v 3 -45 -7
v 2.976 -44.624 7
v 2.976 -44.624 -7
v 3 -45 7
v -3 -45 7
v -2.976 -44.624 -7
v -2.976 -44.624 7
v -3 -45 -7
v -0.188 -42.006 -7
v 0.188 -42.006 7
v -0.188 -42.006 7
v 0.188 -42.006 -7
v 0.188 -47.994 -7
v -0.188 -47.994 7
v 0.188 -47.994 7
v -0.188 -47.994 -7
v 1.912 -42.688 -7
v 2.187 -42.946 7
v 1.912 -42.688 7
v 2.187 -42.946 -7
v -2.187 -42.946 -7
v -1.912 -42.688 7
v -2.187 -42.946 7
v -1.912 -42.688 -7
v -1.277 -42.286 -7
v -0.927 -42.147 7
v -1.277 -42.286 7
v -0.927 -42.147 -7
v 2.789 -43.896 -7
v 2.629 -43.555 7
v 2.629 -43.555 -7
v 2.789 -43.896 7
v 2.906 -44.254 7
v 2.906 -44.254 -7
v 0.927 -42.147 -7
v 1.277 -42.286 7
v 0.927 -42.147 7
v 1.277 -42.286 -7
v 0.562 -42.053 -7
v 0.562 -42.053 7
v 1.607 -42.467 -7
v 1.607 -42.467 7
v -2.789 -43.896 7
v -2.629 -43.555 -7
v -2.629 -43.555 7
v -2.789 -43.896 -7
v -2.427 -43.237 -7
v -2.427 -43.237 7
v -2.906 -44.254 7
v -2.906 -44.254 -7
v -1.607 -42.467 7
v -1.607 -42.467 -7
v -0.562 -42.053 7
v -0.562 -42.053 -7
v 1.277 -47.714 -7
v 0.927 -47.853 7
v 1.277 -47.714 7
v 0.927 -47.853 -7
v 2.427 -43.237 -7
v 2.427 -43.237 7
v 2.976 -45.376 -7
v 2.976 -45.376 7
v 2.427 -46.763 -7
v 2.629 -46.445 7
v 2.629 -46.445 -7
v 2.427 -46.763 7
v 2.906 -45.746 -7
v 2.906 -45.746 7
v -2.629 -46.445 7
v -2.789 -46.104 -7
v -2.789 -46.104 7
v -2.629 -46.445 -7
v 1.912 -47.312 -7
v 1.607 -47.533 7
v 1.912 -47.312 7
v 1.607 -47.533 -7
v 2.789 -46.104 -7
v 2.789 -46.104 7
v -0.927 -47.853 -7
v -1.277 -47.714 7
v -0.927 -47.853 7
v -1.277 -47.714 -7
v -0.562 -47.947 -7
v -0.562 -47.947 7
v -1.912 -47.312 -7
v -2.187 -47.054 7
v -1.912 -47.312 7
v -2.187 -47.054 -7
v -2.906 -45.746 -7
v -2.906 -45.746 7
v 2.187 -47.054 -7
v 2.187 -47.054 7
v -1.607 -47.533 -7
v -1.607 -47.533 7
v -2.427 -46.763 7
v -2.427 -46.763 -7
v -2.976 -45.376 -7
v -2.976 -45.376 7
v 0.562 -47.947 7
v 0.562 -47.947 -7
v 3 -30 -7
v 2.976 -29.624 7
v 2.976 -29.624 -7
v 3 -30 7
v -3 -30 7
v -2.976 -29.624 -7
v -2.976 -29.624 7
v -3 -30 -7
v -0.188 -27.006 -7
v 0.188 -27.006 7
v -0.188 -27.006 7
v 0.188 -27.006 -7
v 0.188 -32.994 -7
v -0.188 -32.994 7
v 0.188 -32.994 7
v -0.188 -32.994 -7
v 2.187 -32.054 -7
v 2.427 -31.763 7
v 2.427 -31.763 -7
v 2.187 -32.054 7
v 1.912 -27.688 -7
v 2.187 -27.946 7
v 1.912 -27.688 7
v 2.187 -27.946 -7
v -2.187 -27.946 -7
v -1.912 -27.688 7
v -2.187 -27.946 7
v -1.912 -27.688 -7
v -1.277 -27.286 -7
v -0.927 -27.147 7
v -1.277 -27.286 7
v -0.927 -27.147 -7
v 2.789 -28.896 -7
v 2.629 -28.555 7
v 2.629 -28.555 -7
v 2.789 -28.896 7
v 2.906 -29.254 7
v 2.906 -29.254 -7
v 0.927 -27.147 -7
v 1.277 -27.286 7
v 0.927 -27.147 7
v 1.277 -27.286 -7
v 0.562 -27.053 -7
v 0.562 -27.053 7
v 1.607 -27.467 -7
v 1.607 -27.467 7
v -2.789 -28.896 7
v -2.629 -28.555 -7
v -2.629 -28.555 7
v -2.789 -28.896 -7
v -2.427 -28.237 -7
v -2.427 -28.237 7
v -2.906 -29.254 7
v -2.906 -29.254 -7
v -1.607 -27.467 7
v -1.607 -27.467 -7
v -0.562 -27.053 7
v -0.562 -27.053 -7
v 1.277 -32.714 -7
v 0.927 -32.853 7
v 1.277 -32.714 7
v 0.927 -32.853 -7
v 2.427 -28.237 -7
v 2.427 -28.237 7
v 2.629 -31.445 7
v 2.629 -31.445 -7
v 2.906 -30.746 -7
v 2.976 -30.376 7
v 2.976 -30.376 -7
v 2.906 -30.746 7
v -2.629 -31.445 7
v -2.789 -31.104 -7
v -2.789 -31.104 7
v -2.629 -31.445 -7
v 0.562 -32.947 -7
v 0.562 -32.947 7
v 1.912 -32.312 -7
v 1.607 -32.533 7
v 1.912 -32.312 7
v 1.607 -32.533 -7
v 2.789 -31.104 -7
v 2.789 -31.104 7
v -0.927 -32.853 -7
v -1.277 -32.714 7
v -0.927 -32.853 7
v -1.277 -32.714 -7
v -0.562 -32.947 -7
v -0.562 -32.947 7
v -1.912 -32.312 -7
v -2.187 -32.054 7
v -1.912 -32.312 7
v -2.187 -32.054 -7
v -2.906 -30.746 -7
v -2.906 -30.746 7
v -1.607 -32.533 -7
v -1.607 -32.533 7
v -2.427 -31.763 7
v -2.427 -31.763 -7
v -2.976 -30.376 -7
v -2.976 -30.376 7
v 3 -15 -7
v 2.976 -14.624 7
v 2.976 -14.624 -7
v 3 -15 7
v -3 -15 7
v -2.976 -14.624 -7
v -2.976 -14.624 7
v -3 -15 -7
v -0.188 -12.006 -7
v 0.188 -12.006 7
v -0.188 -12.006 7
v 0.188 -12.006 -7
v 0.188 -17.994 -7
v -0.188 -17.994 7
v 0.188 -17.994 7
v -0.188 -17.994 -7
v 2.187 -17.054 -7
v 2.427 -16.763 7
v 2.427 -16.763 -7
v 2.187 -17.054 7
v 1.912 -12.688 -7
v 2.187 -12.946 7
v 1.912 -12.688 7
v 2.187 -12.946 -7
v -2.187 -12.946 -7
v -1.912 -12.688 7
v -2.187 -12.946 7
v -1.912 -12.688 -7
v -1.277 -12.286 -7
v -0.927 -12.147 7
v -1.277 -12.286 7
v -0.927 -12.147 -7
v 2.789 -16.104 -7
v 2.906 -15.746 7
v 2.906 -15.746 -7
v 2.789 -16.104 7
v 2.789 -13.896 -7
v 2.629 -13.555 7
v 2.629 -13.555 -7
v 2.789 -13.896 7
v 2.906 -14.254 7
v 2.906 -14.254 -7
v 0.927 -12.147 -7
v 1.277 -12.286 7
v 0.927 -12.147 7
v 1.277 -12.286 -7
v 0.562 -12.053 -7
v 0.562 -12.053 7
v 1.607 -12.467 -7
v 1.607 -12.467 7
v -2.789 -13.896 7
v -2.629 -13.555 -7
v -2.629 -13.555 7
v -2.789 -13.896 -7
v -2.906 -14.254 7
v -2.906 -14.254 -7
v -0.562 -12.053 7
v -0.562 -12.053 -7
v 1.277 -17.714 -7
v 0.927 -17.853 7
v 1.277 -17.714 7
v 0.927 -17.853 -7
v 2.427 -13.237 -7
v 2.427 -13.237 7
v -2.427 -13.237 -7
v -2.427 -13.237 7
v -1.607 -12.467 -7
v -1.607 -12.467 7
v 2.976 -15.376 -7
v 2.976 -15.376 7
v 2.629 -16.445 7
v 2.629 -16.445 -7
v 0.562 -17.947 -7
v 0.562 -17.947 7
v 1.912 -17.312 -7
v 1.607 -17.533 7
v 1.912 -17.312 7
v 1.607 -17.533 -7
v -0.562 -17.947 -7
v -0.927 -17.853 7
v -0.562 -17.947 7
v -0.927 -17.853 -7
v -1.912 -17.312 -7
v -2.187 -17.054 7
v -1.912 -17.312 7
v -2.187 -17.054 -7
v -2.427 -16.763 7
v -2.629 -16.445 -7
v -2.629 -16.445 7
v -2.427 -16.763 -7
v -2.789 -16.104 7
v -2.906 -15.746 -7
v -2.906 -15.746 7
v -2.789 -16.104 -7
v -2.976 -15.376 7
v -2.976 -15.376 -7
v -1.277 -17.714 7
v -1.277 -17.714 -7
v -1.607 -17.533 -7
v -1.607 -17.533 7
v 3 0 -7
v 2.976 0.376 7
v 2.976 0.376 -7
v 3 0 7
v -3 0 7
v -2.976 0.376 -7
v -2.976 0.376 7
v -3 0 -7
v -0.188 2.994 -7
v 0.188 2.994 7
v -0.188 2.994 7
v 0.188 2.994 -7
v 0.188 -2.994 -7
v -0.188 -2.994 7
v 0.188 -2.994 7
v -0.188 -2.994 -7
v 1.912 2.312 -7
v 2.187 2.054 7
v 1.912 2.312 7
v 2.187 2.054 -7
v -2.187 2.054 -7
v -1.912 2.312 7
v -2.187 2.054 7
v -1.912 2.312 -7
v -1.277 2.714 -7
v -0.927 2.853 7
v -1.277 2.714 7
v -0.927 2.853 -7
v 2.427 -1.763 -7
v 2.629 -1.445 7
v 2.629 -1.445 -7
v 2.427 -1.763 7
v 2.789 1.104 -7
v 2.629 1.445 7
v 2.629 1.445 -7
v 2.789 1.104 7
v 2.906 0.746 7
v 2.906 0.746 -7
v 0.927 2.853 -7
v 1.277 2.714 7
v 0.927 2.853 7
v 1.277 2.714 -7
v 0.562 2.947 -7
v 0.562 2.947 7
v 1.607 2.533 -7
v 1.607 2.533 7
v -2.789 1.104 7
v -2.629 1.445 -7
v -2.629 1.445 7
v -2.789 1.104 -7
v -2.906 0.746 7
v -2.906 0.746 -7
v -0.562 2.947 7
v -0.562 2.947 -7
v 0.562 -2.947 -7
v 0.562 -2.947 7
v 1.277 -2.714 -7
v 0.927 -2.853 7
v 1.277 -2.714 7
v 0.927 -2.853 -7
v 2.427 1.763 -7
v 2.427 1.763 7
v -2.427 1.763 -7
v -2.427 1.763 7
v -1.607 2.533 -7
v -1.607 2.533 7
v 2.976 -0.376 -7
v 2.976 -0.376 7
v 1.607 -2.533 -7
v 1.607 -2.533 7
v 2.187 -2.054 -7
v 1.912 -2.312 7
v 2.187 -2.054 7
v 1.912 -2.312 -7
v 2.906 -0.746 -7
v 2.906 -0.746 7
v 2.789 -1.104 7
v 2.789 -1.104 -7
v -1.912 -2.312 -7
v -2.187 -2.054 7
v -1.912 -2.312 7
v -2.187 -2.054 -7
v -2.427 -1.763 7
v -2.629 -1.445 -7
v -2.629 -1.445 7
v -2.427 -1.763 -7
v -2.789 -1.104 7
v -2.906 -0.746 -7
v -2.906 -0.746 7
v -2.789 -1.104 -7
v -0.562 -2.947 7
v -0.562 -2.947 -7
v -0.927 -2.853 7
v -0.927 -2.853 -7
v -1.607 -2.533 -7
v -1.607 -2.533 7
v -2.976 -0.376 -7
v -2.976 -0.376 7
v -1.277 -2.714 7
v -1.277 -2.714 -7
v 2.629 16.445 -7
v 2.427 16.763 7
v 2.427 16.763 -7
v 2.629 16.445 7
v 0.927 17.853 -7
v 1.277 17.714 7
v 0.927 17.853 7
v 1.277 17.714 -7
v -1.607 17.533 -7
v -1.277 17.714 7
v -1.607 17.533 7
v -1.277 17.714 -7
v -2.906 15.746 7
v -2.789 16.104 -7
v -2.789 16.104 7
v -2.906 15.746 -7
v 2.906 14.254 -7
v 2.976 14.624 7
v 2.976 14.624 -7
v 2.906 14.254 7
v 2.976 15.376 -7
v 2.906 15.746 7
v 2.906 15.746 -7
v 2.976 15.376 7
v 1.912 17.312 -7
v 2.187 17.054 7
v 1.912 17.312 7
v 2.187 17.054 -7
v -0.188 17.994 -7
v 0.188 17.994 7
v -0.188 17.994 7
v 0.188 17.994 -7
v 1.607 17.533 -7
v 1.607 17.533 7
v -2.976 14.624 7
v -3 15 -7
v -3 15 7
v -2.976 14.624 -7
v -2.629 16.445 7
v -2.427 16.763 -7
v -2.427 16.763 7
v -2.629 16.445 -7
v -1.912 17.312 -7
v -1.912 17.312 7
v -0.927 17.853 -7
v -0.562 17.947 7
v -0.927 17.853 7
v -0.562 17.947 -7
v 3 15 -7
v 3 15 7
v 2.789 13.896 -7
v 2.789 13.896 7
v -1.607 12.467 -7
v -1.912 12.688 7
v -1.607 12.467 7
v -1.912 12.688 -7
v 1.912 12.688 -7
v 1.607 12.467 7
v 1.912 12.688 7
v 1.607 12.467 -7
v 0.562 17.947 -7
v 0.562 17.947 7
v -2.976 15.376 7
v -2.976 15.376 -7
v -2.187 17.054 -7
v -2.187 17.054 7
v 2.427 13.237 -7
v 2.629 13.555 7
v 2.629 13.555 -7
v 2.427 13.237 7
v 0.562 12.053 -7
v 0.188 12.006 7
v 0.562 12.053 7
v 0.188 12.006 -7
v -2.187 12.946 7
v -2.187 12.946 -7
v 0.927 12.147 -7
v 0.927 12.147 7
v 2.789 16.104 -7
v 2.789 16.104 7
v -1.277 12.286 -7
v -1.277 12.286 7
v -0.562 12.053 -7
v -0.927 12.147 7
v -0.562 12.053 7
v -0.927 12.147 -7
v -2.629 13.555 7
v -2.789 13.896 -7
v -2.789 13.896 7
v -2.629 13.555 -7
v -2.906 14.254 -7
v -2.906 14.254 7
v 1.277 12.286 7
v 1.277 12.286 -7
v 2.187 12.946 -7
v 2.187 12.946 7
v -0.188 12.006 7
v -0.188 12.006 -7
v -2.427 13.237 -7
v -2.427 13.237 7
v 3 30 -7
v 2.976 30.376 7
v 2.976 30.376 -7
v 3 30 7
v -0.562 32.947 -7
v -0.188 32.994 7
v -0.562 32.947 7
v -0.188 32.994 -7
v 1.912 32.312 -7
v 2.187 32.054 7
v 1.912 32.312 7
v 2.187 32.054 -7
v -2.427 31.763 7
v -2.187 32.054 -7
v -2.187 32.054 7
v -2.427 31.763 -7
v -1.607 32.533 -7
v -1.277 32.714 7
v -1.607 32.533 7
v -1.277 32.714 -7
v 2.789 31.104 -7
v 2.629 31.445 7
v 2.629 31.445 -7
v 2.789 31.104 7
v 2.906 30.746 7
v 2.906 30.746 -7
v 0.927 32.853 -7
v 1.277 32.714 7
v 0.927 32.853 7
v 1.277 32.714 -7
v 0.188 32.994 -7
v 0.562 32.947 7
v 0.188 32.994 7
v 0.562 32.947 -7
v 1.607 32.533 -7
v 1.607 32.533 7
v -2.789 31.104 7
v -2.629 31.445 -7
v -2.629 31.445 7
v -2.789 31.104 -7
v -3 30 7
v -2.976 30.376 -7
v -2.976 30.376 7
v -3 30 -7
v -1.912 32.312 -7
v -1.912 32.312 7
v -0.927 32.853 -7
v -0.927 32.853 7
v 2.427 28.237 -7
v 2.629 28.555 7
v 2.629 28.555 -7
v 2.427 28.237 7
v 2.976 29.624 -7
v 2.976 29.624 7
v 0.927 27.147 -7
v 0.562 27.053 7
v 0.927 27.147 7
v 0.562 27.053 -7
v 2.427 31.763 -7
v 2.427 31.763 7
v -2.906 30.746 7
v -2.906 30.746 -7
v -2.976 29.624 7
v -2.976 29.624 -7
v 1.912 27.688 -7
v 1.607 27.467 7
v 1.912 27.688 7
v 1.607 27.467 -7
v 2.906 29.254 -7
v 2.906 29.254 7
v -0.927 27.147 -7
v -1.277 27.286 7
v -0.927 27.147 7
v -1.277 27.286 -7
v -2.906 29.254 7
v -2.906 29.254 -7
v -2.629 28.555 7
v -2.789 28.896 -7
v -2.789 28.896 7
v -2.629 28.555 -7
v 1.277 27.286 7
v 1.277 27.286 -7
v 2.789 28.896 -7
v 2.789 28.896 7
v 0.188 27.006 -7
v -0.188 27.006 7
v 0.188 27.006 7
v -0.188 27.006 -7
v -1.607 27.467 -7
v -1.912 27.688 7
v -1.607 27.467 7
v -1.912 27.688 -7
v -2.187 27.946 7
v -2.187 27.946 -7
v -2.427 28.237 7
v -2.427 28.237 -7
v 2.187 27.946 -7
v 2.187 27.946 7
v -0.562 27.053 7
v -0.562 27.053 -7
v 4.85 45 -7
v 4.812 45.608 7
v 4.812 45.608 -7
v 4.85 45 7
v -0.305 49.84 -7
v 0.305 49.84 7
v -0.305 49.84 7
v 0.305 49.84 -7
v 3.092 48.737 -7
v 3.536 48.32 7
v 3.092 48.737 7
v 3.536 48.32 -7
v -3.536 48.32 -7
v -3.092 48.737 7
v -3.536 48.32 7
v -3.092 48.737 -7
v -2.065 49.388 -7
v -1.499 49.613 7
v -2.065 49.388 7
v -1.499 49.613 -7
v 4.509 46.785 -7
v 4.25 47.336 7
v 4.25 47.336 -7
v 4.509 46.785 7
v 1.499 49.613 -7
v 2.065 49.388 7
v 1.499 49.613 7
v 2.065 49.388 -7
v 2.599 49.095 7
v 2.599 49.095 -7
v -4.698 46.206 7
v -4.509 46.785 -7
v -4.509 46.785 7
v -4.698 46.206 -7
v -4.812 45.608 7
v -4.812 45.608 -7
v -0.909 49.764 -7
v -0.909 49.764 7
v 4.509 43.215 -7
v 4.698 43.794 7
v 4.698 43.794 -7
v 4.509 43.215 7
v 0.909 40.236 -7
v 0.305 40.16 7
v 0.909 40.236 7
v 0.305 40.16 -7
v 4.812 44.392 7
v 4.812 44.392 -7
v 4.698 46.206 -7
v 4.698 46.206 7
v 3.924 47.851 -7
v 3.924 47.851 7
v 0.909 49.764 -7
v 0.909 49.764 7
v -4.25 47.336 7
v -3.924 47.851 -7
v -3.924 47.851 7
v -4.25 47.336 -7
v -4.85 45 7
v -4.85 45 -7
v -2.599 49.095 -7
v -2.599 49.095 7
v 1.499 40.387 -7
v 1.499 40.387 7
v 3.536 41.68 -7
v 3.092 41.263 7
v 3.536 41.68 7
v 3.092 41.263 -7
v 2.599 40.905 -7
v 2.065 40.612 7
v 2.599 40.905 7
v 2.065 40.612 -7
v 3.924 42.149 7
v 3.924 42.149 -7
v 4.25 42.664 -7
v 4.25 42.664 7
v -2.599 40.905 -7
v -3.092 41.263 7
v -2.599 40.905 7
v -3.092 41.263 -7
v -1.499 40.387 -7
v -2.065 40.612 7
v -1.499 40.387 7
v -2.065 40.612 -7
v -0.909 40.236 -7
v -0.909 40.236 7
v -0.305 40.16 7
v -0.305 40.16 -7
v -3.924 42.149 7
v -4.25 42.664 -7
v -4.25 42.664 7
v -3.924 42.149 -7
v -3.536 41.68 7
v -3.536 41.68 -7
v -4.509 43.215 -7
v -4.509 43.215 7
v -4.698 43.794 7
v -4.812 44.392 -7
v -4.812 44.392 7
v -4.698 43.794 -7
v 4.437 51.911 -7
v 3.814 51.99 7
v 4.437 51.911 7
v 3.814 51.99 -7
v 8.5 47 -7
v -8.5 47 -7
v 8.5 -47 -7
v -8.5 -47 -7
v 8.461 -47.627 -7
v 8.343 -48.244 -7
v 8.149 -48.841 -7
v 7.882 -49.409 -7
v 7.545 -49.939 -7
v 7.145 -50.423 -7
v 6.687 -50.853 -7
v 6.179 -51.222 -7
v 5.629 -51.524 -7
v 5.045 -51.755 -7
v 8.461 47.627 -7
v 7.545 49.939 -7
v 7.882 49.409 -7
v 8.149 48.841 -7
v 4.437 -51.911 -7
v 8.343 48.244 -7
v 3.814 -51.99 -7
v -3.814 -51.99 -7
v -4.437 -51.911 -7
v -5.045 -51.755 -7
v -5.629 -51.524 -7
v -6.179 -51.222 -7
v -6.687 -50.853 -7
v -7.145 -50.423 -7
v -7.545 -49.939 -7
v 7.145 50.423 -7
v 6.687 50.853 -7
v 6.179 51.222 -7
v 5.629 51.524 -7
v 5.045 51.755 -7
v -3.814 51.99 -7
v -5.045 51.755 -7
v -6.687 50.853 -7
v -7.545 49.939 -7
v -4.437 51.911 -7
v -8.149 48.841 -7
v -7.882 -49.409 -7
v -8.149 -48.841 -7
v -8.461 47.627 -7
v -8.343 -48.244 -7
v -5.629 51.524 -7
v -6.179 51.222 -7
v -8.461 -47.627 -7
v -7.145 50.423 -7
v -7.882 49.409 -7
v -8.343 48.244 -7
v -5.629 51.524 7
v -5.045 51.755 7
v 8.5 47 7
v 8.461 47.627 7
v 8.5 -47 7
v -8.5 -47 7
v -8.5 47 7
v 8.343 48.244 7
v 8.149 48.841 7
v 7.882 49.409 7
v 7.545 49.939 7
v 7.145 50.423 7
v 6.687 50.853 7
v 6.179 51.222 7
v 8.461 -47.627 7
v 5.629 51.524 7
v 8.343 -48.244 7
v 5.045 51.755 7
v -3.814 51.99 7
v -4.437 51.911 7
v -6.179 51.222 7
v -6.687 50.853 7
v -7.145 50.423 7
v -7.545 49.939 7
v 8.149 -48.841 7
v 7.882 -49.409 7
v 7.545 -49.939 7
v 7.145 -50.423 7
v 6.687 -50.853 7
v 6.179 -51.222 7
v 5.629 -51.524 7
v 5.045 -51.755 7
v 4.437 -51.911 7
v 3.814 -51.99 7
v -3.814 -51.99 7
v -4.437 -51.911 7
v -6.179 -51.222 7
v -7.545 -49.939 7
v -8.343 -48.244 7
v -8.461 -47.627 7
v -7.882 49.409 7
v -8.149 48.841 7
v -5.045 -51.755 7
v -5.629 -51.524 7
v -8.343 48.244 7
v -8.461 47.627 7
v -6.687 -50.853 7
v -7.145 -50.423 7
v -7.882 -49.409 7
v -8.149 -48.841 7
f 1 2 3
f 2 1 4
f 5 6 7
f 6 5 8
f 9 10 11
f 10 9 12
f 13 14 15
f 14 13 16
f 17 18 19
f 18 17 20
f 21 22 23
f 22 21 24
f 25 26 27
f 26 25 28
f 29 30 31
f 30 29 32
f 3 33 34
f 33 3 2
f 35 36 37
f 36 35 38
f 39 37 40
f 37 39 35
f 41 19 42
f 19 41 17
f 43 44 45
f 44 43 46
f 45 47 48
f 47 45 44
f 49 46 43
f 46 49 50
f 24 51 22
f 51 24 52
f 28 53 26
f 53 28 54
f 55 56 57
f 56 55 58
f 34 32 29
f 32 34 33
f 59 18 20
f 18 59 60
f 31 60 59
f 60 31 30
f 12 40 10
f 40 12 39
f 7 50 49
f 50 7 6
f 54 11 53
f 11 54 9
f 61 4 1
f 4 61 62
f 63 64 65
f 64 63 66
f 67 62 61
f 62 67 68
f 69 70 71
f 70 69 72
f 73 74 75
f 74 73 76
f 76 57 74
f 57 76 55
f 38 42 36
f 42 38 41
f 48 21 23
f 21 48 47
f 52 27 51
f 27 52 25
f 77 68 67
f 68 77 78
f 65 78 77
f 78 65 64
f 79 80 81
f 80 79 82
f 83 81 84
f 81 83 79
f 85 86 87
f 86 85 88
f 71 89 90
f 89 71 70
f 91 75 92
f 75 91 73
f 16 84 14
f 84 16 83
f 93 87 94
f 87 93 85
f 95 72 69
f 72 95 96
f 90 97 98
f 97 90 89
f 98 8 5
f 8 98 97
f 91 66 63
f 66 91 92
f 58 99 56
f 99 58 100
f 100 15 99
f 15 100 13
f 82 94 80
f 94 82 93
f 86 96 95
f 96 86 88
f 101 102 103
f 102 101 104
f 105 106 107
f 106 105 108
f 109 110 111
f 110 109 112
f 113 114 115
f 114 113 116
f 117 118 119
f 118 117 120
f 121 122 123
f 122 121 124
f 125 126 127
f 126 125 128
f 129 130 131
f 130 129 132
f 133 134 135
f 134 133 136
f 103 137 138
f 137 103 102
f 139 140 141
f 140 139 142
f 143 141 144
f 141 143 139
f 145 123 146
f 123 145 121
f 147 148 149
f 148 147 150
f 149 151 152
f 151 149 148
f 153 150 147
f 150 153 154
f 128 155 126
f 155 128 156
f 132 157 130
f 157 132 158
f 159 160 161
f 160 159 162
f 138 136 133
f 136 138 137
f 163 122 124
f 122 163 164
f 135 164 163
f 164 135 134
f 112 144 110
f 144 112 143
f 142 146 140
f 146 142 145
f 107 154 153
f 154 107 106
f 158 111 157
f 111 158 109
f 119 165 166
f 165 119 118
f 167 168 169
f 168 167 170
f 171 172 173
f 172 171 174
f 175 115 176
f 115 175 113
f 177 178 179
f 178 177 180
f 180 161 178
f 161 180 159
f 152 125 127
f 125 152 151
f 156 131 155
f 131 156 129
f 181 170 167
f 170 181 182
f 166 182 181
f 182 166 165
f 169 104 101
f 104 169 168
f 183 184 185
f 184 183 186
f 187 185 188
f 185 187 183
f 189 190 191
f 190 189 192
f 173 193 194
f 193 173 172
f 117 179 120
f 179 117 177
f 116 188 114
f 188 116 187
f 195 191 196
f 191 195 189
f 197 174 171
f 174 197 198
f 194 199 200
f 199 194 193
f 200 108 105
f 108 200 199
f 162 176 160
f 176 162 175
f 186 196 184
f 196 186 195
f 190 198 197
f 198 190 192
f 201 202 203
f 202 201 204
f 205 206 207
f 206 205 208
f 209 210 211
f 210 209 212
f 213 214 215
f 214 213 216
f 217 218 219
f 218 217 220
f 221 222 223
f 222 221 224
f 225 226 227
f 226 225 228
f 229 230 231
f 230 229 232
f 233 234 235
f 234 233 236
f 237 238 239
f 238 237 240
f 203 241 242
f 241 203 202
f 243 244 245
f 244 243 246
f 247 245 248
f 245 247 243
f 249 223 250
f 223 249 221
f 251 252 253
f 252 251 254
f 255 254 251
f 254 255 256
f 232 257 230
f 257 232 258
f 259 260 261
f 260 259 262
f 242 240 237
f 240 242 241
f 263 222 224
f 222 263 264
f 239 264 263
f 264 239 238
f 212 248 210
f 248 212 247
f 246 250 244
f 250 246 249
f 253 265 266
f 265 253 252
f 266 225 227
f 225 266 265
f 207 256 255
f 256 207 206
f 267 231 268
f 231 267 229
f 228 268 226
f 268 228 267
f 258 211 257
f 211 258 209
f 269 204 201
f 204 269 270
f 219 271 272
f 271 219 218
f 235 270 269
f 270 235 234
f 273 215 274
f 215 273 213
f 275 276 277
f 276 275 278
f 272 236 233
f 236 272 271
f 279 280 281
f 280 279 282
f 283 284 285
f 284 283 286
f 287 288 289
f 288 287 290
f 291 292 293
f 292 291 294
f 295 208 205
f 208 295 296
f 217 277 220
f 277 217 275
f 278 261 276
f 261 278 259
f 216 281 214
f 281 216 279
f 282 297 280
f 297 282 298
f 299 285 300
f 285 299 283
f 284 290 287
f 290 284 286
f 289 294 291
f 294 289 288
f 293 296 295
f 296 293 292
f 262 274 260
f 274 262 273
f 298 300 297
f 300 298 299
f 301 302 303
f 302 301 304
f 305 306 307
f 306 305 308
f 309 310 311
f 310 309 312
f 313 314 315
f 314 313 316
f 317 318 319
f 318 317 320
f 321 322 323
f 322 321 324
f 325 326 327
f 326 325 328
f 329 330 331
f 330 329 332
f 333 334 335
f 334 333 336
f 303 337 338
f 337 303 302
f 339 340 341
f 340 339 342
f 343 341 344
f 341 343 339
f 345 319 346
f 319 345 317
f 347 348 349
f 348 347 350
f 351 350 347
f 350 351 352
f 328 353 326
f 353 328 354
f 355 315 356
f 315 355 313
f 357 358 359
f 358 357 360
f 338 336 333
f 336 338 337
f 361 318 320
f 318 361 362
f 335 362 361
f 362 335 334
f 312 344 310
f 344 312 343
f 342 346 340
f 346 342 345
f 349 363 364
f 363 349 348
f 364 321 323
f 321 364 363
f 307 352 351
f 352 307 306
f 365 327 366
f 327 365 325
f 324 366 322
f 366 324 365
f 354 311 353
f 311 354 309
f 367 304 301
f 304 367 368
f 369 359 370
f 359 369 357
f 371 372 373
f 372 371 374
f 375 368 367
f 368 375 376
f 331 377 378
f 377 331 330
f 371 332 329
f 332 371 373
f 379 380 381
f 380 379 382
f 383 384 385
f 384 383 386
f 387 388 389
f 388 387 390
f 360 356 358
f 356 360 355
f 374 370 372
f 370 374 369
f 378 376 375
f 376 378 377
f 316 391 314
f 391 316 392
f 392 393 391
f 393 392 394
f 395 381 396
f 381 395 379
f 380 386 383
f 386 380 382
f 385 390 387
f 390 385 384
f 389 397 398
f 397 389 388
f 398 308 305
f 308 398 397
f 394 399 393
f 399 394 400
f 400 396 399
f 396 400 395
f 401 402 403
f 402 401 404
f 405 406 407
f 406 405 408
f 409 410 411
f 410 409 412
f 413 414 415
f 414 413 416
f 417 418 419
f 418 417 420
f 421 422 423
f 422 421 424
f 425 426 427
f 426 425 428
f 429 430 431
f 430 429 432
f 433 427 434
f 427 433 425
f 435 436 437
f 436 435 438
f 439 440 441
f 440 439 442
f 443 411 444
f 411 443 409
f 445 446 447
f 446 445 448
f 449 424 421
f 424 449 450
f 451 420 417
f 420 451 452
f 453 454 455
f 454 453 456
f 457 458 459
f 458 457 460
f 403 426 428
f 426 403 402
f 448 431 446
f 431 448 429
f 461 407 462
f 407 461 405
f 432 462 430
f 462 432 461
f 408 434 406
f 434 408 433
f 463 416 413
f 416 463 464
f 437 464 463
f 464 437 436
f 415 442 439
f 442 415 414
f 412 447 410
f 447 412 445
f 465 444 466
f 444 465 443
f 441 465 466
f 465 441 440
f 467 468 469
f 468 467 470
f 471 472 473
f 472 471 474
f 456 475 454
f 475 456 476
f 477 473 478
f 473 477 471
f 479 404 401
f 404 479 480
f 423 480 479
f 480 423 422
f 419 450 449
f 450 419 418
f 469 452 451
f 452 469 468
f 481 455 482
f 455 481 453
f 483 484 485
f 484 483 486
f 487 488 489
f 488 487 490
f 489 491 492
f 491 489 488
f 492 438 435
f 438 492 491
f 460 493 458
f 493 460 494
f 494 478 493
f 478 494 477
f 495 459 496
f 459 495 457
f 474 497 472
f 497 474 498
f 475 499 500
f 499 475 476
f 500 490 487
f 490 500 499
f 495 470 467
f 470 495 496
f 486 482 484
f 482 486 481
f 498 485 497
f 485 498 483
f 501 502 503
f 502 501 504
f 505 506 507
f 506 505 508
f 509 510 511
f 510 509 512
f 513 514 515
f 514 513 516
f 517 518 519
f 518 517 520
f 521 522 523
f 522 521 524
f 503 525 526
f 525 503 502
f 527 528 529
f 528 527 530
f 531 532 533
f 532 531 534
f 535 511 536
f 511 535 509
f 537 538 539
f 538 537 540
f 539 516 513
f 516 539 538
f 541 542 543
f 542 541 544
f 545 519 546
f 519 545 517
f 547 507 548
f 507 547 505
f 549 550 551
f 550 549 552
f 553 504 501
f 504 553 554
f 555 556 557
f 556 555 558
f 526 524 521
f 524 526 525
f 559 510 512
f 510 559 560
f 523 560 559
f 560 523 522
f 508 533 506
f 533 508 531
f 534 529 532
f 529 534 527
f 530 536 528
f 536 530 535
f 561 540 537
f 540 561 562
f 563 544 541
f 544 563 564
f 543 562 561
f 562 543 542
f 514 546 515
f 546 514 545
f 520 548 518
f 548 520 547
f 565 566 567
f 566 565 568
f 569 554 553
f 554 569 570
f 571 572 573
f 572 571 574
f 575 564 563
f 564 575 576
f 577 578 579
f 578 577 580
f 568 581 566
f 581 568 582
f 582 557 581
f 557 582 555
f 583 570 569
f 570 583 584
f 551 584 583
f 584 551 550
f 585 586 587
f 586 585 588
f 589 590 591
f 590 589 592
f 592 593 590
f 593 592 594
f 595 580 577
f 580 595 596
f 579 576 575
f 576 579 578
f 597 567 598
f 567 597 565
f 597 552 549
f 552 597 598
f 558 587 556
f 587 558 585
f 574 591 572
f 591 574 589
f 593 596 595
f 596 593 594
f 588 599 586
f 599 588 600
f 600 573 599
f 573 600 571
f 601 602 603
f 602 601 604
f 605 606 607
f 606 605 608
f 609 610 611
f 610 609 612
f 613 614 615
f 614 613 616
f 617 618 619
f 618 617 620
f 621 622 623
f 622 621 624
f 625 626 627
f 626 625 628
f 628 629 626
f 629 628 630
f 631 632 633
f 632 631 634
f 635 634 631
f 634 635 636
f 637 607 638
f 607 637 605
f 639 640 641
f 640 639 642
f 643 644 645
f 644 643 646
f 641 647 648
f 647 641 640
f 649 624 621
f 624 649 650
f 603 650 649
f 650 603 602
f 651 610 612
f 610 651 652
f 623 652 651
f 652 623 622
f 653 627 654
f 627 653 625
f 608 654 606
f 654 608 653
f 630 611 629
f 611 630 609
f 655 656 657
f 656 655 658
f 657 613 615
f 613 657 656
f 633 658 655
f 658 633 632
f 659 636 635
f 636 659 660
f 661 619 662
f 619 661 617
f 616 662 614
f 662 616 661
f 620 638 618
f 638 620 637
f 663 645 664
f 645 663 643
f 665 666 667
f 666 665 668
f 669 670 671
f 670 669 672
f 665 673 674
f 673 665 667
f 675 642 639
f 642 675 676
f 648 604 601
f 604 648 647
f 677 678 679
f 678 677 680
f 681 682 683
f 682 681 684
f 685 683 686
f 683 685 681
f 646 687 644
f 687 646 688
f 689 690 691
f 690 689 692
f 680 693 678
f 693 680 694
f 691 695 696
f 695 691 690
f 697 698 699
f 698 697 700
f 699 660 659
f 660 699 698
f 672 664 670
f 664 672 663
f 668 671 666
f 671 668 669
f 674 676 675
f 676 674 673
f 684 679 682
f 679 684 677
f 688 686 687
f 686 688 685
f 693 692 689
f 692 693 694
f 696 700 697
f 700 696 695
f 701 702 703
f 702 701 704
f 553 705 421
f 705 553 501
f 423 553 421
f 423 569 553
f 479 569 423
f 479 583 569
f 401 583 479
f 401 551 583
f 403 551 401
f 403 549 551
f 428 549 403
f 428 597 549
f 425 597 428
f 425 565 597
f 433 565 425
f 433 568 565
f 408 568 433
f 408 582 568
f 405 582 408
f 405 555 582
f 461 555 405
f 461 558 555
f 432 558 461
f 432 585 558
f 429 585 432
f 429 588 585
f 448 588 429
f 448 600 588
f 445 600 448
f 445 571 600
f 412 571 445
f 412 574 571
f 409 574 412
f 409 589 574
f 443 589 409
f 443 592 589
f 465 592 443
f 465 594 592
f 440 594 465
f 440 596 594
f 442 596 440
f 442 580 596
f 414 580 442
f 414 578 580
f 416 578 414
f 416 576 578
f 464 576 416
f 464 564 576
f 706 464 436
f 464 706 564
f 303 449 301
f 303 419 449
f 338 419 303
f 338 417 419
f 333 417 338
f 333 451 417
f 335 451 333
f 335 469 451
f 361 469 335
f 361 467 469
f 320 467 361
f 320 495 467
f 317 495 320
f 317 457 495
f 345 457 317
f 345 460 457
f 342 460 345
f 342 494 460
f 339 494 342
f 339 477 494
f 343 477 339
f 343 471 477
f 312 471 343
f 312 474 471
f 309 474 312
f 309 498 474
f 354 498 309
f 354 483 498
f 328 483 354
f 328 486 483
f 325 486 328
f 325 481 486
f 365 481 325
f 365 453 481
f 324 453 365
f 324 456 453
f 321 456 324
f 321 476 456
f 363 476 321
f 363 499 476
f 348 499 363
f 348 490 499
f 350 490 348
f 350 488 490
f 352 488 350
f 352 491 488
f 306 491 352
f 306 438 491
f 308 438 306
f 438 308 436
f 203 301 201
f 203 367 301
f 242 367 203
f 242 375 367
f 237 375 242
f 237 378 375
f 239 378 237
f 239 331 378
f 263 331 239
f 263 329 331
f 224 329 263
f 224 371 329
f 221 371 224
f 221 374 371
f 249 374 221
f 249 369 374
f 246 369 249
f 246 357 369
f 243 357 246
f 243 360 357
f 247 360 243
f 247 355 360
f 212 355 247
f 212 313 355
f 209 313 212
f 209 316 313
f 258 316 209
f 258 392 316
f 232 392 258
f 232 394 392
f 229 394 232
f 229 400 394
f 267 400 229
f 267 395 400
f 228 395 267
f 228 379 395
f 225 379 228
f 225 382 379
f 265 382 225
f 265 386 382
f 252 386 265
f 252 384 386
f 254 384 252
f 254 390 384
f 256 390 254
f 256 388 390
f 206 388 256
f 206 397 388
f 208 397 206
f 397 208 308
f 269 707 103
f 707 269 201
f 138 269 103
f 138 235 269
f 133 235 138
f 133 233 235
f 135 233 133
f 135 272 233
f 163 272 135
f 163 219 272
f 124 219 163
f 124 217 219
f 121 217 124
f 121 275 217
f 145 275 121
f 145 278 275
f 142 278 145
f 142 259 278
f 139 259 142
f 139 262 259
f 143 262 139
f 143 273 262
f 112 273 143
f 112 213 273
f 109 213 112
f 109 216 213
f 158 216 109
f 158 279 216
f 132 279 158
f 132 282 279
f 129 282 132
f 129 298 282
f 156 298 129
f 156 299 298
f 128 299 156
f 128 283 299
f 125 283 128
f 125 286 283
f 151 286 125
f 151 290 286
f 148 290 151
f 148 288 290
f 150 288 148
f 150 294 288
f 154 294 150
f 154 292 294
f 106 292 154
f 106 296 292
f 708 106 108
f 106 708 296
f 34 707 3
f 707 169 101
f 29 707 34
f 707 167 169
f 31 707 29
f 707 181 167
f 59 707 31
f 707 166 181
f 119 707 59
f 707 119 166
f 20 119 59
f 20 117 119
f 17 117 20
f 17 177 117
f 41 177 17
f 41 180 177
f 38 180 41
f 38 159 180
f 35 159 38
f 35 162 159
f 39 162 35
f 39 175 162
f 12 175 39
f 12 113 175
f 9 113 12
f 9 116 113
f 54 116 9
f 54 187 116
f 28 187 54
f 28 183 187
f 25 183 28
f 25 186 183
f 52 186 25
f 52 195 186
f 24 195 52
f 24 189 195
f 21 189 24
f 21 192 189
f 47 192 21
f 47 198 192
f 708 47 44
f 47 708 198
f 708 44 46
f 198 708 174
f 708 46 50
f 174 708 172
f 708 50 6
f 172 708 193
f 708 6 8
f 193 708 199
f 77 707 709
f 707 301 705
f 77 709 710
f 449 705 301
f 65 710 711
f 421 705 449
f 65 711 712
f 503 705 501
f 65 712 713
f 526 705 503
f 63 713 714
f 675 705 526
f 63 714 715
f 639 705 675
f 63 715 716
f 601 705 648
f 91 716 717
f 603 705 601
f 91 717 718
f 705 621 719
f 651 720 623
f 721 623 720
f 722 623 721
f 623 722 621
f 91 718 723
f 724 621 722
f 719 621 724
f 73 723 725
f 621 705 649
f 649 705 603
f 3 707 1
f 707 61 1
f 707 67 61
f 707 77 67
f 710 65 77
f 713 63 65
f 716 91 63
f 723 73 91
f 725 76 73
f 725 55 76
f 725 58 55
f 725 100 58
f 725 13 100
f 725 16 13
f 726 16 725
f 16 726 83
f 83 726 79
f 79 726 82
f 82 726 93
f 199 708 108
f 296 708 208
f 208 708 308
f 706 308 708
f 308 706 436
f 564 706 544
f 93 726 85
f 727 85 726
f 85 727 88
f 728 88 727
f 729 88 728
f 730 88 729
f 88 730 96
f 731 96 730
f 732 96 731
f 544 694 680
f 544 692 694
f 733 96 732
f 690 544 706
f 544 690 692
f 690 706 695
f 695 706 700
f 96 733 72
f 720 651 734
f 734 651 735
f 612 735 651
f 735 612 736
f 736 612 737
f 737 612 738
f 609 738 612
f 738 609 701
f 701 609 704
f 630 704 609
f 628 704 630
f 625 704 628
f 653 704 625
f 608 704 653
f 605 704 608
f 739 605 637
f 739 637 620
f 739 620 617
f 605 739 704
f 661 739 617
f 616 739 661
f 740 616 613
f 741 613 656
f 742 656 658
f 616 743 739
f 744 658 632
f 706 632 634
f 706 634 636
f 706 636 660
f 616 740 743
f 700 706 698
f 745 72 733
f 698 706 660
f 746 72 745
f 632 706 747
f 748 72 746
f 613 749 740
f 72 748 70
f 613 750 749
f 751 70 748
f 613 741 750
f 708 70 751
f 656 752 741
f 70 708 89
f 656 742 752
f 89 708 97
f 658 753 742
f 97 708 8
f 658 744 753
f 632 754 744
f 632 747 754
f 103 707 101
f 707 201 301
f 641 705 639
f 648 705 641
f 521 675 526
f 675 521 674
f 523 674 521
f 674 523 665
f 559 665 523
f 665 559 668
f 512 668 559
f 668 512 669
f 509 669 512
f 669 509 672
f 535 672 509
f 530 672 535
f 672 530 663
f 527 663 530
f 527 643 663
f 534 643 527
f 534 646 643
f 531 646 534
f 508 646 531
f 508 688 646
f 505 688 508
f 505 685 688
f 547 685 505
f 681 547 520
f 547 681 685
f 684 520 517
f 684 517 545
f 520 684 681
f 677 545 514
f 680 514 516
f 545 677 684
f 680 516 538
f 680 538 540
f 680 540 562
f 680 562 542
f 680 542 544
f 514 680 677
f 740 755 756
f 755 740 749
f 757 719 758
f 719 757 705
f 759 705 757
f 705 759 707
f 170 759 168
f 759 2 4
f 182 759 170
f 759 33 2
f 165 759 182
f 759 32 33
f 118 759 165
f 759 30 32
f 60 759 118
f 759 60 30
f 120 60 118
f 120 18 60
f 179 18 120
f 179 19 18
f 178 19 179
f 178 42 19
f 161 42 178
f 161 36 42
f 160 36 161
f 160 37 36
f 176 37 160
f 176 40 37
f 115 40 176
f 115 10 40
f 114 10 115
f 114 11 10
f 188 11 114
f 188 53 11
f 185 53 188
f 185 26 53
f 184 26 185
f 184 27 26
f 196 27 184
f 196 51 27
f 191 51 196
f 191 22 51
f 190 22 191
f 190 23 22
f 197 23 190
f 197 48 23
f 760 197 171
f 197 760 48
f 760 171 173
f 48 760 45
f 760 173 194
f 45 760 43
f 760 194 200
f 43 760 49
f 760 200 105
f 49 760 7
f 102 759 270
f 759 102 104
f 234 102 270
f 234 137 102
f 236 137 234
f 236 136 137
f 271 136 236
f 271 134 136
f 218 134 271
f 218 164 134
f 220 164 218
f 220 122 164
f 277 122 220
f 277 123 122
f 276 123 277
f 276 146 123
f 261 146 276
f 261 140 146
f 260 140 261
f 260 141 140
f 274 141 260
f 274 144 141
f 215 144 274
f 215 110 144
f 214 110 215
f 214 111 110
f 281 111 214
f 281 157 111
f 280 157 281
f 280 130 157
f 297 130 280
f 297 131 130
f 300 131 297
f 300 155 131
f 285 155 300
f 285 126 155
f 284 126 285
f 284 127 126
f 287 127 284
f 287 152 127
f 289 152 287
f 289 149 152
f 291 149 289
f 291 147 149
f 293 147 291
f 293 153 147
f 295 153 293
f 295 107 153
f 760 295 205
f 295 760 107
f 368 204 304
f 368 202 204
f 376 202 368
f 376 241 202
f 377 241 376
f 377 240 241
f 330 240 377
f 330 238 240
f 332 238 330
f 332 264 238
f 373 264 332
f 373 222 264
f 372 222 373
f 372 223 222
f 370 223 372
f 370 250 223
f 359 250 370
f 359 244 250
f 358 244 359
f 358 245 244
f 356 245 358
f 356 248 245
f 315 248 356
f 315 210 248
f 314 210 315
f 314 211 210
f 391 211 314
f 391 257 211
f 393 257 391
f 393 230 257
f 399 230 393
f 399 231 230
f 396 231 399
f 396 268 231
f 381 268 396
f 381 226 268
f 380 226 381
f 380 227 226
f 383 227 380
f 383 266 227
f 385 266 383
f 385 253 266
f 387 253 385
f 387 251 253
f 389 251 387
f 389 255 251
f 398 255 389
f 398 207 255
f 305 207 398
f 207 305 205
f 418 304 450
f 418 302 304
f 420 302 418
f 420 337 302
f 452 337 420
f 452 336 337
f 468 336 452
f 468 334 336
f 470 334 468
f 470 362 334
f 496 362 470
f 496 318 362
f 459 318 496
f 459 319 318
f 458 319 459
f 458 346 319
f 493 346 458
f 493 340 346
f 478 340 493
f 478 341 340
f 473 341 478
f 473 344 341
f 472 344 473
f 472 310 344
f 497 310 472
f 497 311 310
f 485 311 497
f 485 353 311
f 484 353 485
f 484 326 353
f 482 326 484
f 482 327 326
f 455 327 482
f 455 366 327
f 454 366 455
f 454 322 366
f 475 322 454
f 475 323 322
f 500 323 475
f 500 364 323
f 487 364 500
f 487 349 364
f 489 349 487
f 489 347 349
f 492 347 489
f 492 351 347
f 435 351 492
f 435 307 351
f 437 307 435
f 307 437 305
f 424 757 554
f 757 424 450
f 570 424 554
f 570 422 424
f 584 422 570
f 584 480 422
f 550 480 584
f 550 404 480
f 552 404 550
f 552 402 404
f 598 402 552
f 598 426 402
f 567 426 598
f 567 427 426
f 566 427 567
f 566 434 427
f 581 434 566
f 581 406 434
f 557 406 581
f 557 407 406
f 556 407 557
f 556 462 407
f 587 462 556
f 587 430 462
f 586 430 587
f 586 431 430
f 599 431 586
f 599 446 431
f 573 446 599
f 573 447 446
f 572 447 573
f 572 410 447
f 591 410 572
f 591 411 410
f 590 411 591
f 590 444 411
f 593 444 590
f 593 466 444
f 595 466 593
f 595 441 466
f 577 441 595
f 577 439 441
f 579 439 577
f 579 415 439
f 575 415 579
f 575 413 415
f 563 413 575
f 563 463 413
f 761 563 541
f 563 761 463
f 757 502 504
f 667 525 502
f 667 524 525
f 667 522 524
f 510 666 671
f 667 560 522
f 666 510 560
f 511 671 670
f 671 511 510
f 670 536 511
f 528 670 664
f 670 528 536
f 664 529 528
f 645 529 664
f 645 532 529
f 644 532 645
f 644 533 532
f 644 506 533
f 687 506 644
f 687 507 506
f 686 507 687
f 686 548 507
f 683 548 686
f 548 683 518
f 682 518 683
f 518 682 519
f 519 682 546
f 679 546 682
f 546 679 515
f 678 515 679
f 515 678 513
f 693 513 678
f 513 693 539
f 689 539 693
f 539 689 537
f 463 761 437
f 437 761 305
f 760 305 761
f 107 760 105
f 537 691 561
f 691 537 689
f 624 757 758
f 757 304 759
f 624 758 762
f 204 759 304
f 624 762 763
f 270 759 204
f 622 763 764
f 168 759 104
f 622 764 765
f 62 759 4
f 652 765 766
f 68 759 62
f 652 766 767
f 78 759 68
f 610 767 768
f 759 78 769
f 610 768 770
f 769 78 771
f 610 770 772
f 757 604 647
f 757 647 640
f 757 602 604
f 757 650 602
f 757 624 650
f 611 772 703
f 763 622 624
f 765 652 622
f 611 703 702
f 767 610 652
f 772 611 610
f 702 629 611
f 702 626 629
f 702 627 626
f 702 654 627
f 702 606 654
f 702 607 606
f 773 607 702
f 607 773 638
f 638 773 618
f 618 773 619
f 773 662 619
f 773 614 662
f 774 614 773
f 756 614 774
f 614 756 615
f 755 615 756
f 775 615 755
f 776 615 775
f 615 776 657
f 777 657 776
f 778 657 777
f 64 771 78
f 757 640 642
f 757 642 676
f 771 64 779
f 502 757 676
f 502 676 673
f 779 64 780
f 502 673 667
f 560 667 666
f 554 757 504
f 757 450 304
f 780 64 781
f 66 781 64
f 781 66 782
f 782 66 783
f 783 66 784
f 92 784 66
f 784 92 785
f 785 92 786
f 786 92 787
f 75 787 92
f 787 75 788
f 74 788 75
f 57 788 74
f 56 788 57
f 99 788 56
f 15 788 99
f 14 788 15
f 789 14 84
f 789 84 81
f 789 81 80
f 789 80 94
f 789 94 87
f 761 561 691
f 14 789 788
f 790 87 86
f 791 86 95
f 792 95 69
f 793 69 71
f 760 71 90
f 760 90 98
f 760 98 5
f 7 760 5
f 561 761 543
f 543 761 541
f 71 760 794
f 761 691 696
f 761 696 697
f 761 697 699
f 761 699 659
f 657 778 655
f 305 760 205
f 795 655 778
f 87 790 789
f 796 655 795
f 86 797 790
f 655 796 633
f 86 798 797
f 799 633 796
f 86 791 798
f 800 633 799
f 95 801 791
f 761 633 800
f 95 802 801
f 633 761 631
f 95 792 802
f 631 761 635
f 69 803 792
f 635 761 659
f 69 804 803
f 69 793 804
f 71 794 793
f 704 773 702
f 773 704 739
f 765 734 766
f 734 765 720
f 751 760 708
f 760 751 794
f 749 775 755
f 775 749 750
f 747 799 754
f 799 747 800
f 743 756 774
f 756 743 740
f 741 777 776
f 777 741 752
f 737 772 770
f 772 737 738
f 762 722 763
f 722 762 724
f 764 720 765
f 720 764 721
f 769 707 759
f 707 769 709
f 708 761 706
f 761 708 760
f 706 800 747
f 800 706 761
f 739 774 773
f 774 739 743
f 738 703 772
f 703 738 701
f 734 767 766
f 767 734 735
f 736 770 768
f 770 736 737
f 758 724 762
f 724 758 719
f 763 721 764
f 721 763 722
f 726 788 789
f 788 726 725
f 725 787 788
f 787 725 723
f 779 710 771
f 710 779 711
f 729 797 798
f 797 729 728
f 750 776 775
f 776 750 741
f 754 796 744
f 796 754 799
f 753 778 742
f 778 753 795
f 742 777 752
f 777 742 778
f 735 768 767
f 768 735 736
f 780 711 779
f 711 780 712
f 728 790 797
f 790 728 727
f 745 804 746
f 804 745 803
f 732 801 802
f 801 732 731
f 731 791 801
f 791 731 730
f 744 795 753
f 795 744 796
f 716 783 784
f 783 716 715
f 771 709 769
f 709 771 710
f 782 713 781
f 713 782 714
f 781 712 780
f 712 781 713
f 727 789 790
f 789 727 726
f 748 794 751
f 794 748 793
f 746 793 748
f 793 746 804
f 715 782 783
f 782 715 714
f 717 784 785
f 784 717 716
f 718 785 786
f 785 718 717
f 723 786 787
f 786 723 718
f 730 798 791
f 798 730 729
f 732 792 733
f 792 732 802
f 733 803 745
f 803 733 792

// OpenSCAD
$fn = 50;


difference() {
	union() {
		translate(v = [0, 0, -7.0000000000]) {
			hull() {
				translate(v = [-3.5000000000, 47.0000000000, 0]) {
					cylinder(h = 14, r = 5);
				}
				translate(v = [3.5000000000, 47.0000000000, 0]) {
					cylinder(h = 14, r = 5);
				}
				translate(v = [-3.5000000000, -47.0000000000, 0]) {
					cylinder(h = 14, r = 5);
				}
				translate(v = [3.5000000000, -47.0000000000, 0]) {
					cylinder(h = 14, r = 5);
				}
			}
		}
	}
	union() {
		translate(v = [0.0000000000, -45.0000000000, -100.0000000000]) {
			cylinder(h = 200, r = 3.0000000000);
		}
		translate(v = [0.0000000000, -30.0000000000, -100.0000000000]) {
			cylinder(h = 200, r = 3.0000000000);
		}
		translate(v = [0.0000000000, -15.0000000000, -100.0000000000]) {
			cylinder(h = 200, r = 3.0000000000);
		}
		translate(v = [0.0000000000, 0.0000000000, -100.0000000000]) {
			cylinder(h = 200, r = 3.0000000000);
		}
		translate(v = [0.0000000000, 15.0000000000, -100.0000000000]) {
			cylinder(h = 200, r = 3.0000000000);
		}
		translate(v = [0.0000000000, 30.0000000000, -100.0000000000]) {
			cylinder(h = 200, r = 3.0000000000);
		}
		translate(v = [0, 45, -100.0000000000]) {
			cylinder(h = 200, r = 4.8500000000);
		}
	}
}
